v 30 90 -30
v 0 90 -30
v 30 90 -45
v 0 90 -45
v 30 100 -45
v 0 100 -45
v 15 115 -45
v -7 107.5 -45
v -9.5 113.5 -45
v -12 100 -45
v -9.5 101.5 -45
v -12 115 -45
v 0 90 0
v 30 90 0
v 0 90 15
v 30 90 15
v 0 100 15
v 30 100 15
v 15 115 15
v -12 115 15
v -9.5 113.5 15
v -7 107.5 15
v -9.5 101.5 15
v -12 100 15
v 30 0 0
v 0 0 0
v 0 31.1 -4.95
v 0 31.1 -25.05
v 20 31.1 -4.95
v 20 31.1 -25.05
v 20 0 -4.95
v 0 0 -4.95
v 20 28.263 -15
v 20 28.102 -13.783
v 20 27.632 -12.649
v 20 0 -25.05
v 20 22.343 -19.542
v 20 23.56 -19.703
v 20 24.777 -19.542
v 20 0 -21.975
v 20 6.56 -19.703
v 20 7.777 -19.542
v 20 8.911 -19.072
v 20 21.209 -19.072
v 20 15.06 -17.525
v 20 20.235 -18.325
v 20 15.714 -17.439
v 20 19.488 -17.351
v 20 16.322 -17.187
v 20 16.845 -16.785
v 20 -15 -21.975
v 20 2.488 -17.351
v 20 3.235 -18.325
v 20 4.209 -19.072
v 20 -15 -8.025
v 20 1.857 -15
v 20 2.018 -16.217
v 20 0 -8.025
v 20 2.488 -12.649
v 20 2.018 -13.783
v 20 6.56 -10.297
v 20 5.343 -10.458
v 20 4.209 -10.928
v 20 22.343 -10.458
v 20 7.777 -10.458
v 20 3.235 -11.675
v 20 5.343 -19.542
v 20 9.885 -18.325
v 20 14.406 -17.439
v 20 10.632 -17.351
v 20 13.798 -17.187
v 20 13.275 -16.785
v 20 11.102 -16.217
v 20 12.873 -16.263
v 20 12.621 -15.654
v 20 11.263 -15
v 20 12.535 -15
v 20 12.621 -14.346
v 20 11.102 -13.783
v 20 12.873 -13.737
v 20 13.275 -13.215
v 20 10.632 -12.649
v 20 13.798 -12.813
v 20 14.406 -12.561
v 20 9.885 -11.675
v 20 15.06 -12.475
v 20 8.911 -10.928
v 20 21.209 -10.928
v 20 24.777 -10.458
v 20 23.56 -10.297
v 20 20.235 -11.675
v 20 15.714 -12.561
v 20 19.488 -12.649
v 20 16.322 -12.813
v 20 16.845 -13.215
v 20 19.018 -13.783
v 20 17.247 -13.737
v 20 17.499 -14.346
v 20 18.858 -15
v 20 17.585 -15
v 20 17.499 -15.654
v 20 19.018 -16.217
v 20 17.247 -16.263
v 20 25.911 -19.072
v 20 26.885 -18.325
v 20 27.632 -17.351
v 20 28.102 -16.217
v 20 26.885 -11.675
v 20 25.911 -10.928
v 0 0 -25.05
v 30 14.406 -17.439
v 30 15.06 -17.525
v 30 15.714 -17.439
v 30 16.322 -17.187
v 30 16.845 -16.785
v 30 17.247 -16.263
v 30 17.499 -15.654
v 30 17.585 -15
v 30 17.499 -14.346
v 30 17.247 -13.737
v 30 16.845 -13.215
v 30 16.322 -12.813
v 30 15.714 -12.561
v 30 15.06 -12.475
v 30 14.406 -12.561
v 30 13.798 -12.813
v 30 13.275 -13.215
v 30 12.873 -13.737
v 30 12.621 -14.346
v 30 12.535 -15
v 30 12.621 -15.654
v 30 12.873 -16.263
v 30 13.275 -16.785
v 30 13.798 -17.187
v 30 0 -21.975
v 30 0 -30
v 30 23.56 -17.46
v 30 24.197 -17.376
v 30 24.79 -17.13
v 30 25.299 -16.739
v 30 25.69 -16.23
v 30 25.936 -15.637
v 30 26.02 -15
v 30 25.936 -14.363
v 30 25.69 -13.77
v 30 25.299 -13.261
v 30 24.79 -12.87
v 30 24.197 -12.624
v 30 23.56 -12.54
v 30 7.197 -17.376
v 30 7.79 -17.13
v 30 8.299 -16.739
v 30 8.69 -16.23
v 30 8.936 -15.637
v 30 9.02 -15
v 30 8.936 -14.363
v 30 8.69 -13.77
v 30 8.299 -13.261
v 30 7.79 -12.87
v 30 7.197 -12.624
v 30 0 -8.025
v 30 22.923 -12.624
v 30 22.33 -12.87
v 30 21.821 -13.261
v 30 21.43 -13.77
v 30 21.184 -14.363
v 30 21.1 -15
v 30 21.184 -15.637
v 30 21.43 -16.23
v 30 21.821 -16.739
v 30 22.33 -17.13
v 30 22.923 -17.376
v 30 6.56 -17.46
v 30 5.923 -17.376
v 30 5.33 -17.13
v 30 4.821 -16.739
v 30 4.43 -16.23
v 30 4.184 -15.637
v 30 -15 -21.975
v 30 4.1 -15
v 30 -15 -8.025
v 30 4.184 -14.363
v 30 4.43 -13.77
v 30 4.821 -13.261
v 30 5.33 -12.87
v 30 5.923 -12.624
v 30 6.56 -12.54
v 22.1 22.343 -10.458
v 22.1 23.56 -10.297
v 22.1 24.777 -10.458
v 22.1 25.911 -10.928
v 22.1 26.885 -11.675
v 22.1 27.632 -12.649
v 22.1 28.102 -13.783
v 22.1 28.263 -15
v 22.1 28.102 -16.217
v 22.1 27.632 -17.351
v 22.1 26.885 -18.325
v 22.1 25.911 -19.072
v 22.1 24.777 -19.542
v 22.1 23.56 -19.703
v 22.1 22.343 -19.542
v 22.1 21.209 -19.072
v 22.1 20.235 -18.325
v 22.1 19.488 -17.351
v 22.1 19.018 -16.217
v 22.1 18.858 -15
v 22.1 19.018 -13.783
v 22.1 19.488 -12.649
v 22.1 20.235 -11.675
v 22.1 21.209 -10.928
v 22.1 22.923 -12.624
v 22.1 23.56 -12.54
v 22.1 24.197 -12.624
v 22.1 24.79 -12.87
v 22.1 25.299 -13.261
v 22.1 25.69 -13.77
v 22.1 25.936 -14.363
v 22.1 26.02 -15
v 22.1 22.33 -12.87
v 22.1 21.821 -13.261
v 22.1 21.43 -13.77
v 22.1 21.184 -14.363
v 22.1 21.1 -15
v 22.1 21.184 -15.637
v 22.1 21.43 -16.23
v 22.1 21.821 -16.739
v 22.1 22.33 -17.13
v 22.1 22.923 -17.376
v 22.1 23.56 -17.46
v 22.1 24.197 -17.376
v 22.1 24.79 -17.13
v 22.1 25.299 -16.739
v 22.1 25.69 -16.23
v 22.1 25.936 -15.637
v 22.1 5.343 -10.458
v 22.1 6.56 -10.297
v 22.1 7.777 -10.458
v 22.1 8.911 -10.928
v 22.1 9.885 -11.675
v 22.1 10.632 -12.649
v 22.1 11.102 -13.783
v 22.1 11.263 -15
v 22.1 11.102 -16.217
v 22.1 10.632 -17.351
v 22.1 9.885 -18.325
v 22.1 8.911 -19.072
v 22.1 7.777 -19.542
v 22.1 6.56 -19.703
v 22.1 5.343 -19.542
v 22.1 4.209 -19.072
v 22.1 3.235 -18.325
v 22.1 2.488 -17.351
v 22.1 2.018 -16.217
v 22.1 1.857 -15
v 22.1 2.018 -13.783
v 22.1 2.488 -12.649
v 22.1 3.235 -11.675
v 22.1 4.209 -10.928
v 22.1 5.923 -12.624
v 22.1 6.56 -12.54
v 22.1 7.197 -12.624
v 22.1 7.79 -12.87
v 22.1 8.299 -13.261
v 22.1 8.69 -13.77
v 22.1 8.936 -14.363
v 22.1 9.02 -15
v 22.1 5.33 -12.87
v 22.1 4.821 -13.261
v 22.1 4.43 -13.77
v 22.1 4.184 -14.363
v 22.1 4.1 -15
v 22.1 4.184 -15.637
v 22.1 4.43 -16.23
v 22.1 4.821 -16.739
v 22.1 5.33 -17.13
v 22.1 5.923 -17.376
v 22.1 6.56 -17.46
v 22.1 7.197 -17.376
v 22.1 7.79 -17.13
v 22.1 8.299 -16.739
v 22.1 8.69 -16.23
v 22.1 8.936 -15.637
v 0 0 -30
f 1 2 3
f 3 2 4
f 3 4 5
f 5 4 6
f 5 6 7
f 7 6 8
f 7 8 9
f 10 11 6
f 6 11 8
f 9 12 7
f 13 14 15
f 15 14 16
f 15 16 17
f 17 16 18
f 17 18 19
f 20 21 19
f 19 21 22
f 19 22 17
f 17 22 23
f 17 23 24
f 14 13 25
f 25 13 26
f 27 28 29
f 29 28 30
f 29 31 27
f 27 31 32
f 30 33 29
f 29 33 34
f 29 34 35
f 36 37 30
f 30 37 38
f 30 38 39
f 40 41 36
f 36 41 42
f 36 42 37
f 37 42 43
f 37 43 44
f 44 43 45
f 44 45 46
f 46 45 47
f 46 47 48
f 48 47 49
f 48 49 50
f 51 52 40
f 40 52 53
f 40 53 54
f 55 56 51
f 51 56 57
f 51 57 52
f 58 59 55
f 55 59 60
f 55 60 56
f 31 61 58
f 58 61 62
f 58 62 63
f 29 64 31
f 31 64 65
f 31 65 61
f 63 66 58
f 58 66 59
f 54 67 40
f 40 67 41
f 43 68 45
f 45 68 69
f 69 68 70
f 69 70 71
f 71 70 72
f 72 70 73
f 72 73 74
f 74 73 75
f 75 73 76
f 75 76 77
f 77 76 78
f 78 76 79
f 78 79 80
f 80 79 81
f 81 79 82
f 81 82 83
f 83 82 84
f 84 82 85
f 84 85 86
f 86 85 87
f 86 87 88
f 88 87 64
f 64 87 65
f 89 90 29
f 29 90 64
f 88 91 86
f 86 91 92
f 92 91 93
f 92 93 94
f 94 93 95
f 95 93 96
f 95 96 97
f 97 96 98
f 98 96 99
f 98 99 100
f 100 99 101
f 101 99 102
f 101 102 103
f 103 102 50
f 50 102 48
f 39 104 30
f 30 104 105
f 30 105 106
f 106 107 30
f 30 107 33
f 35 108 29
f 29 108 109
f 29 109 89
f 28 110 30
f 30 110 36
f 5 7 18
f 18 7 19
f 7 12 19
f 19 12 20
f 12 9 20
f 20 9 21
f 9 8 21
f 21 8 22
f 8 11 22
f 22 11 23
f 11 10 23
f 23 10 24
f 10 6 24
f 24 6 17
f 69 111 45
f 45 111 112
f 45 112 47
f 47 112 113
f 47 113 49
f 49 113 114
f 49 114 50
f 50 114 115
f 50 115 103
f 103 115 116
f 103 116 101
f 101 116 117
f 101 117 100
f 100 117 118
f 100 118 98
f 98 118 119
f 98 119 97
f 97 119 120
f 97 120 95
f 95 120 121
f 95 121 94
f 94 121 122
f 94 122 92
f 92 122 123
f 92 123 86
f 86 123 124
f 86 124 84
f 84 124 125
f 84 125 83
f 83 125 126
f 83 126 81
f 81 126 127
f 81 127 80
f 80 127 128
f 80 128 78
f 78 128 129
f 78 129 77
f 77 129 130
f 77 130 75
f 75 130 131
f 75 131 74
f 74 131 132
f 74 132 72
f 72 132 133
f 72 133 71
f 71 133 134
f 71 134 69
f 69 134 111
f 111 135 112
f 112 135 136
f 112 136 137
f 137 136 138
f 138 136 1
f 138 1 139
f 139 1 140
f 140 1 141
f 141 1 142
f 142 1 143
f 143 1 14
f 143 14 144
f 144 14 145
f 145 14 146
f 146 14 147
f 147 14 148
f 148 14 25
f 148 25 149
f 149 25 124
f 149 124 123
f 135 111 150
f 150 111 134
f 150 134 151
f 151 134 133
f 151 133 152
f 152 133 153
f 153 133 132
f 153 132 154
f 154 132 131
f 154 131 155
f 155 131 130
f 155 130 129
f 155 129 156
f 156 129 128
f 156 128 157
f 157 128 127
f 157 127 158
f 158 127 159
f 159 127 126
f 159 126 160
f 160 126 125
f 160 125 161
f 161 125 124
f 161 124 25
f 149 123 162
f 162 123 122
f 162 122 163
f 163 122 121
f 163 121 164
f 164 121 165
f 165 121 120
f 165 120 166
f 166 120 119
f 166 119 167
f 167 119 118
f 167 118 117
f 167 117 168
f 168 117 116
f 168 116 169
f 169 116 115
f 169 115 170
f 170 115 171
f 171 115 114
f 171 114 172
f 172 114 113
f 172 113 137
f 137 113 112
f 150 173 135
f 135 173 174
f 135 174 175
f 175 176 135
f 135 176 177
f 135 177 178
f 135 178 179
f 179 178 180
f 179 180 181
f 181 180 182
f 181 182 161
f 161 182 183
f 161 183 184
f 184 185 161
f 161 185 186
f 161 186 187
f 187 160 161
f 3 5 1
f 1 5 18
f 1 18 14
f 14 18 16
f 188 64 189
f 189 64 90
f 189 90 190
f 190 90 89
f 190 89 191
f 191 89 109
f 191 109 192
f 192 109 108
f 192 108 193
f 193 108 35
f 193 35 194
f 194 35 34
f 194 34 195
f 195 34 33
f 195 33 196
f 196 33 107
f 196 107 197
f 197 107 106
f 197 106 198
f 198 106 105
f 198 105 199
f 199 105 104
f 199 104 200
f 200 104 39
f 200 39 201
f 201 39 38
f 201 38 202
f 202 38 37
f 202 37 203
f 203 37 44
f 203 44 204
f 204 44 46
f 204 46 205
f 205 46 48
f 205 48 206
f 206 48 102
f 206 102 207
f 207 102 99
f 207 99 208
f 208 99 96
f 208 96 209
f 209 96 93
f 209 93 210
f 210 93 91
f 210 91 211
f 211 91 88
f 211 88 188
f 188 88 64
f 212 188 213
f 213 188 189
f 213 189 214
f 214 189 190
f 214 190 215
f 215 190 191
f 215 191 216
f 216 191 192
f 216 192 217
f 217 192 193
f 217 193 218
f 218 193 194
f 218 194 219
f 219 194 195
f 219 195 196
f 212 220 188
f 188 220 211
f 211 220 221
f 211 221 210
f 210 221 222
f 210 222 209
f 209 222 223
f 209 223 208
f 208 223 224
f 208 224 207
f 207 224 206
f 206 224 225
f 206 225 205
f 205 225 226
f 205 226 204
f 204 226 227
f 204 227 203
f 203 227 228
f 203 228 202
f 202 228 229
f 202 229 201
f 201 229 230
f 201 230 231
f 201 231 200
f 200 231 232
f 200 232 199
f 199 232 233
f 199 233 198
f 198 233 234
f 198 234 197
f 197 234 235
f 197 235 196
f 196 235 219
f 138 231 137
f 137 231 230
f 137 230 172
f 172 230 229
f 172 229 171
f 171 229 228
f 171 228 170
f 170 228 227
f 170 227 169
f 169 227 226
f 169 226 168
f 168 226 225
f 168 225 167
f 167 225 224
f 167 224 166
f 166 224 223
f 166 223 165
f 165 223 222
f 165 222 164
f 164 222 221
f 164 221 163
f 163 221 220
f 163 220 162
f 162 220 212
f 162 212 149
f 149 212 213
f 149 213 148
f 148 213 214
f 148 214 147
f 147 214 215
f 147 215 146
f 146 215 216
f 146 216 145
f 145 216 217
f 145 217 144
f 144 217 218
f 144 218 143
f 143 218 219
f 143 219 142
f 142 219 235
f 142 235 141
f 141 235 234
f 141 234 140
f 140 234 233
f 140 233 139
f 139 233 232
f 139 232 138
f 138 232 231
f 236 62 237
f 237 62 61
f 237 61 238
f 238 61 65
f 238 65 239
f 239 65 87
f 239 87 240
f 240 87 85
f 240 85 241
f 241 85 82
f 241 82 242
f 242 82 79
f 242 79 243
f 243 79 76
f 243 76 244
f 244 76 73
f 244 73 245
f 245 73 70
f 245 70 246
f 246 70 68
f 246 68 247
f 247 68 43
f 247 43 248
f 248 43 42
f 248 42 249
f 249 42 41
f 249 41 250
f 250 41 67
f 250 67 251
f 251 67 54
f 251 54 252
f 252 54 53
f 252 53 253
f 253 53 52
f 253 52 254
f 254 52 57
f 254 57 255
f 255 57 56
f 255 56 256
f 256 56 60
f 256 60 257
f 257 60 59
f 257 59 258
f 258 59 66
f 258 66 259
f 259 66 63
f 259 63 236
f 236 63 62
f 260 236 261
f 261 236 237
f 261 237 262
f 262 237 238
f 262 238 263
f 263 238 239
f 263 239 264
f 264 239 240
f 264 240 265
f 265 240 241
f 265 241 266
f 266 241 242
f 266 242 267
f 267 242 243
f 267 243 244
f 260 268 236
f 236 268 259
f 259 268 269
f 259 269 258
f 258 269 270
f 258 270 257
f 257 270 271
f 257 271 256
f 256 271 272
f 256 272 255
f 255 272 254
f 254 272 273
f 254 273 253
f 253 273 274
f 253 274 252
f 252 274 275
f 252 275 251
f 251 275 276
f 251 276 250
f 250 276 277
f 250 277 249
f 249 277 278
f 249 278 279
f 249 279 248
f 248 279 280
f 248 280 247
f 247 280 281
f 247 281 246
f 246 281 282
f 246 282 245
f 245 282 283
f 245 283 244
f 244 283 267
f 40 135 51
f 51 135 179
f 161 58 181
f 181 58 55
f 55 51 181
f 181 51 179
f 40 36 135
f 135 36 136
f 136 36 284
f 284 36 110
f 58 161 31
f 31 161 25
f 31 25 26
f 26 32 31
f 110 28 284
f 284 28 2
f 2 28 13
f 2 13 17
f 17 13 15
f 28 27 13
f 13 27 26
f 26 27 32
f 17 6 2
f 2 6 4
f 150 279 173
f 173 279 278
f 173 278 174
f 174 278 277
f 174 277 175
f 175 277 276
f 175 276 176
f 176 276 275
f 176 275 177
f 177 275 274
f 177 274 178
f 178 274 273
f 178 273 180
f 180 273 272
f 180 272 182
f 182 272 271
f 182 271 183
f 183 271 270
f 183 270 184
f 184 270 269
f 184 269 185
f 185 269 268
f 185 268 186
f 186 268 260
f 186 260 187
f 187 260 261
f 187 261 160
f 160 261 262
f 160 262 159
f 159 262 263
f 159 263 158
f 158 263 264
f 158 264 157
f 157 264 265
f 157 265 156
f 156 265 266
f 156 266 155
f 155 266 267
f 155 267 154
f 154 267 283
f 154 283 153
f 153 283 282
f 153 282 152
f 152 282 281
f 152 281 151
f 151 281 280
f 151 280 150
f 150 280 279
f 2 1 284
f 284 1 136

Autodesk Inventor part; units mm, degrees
ref_plane "YZ Plane" through (0, 0, 0) normal (1, 0, 0) x (0, 1, 0)
ref_plane "XZ Plane" through (0, 0, 0) normal (0, 1, 0) x (-1, 0, 0)
sketch "Sketch1" plane through (0, 0, 0) normal (0, 0, 1) x (1, 0, 0)
  line L0 (0, 0) -> (25, 0)
  line L1 (25, 0) -> (25, 40)
  line L2 (25, 40) -> (0, 40)
  line L3 (0, 40) -> (0, 0)
  dimension "d1" = 25
  dimension "d2" = 40
  dimension "d3" = 25
extrude "Extrusion1" add sketch "Sketch1" against normal blind 30
sketch "Sketch2" plane through (25, 0, 0) normal (1, 0, 0) x (0, 0, -1)
  line L0 (0, 0) -> (30, 0) projected
  circle A0 centre (15, 6.56) radius 2.46
extrude "Extrusion2" cut sketch "Sketch2" against normal blind 30
sketch "Sketch3" plane through (0, 0, 0) normal (-1, 0, 0) x (0, 0, 1)
  line L0 (0, 0) -> (-30, 0) projected
  line L1 (-25.05, 0) -> (-4.95, 0)
  line L2 (-4.95, 0) -> (-4.95, 33.12)
  line L3 (-4.95, 33.12) -> (-25.05, 33.12)
  line L4 (-25.05, 33.12) -> (-25.05, 0)
  dimension "d11" = 20.1
extrude "Extrusion3" cut sketch "Sketch3" against normal blind 20
sketch "Sketch4" plane through (0, 0, 0) normal (0, -1, 0) x (1, 0, 0)
  line L0 (20, -4.95) -> (20, -25.05) projected
  line L1 (20, -15) -> (25, -15)
  line L2 (25, 0) -> (25, -30) projected
  line L3 (20, -8.025) -> (25, -8.025)
  line L4 (25, -8.025) -> (25, -21.975)
  line L5 (25, -21.975) -> (20, -21.975)
  line L6 (20, -21.975) -> (20, -8.025)
  line L7 (20, -8.025) -> (25, -21.975) construction
  line L8 (25, -8.025) -> (20, -21.975) construction
  line L9 (25, -12.54) -> (25, -17.46) projected
  point P0 (0, 0)
  point P1 (22.5, -15)
  dimension "d14" = 13.95
extrude "Extrusion4" add sketch "Sketch4" along normal blind 15
sketch "Sketch5" plane through (20, 0, 0) normal (-1, 0, 0) x (0, 0, 1)
  circle A0 centre (-15, 6.56) radius 2.46 projected
  circle A1 centre (-15, 6.56) radius 4.7025
  circle A2 centre (-15, 6.56) radius 2.46 projected
  circle A3 centre (-15, 6.56) radius 2.46
  point P0 (0, 0)
  dimension "d17" = 9.405
extrude "Extrusion5" cut sketch "Sketch5" against normal blind 2.1
sketch "Sketch6" plane through (25, 0, 0) normal (1, 0, 0) x (0, 0, -1)
  circle A0 centre (15, 6.56) radius 4.7025 projected
  line L0 (15, 6.56) -> (15, 23.56)
  circle A1 centre (15, 23.56) radius 2.46
  point P0 (0, 0)
  dimension "d20" = 17
  dimension "d21" = 4.92
extrude "Extrusion6" cut sketch "Sketch6" against normal blind 10 contours A1
sketch "Sketch7" plane through (20, 0, 0) normal (-1, 0, 0) x (0, 0, 1)
  circle A0 centre (-15, 23.56) radius 2.46 projected
  circle A1 centre (-15, 23.56) radius 4.7025
  point P0 (0, 0)
  dimension "d24" = 9.405
extrude "Extrusion7" cut sketch "Sketch7" against normal blind 2.1
sketch "Sketch9" plane through (25, 0, 0) normal (1, 0, 0) x (0, 0, -1)
  circle A0 centre (15, 6.56) radius 2.46 projected
  circle A1 centre (15, 6.56) radius 2.46
  circle A2 centre (15, 23.56) radius 2.46 projected
  circle A3 centre (15, 23.56) radius 2.46
  line L0 (30, 40) -> (30, 0) projected
  line L1 (30, 0) -> (30, 40)
  line L2 (30, 40) -> (0, 40)
  line L3 (0, 40) -> (0, 0)
  line L4 (0, 0) -> (8.025, 0) projected
  line L5 (21.975, 0) -> (21.975, -15)
  line L6 (21.975, -15) -> (8.025, -15)
  line L7 (8.025, -15) -> (8.025, 0)
  line L8 (0, 0) -> (8.025, 0)
  line L9 (21.975, 0) -> (30, 0)
extrude "Extrusion8" add sketch "Sketch9" along normal blind 5
sketch "Sketch10" plane through (0, 40, 0) normal (0, 1, 0) x (1, 0, 0)
  line L0 (0, 30) -> (30, 30) projected
  line L1 (30, 0) -> (0, 0) projected
  line L2 (0, 30) -> (30, 30)
  line L3 (30, 30) -> (30, 0)
  line L4 (30, 0) -> (0, 0)
  line L5 (0, 0) -> (0, 30)
extrude "Extrusion9" add sketch "Sketch10" along normal blind 30
sketch "Sketch12" plane through (30, 0, 0) normal (1, 0, 0) x (0, 0, -1)
  circle A0 centre (15, 6.56) radius 2.46 projected
  line L0 (15, 6.56) -> (15, 15.06)
  circle A1 centre (15, 15.06) radius 2.525
  point P0 (0, 0)
  dimension "d31" = 8.5
  dimension "d33" = 5.05
extrude "Extrusion10" cut sketch "Sketch12" against normal blind 30 contours A1
sketch "Sketch14" plane through (0, 0, 0) normal (0, 0, 1) x (1, 0, 0)
  line L0 (30, 70) -> (0, 70) projected
  line L1 (0, 70) -> (0, 85)
  line L2 (30, 100) -> (15, 115)
  line L3 (-12, 115) -> (15, 115)
  line L4 (30, 0) -> (30, 70) projected
  line L5 (30, 100) -> (30, 70)
  line L6 (-9.5, 113.5) -> (-12, 115)
  line L7 (-9.5, 101.5) -> (-12, 100)
  line L8 (-7, 107.5) -> (-9.5, 101.5)
  line L9 (-7, 107.5) -> (-9.5, 113.5)
  line L10 (0, 100) -> (0, 85)
  line L11 (0, 100) -> (-12, 100)
  point P0 (0, 0)
  dimension "d49" = 15
  dimension "d61" = 12
extrude "Extrusion12" add sketch "Sketch14" against normal blind 30
sketch "Sketch15" plane through (0, 0, -25.05) normal (-1, 0, 0) x (0, 0, 1)
  line L0 (0, 33.12) -> (20.1, 33.12) projected
  line L1 (20.1, 33.12) -> (20.1, 0) projected
  line L2 (0, 33.12) -> (20.1, 33.12)
  line L3 (20.1, 33.12) -> (20.1, 31.1)
  line L4 (20.1, 31.1) -> (0, 31.1)
  line L5 (0, 31.1) -> (0, 33.12)
  point P0 (25.05, 0)
  dimension "d57" = 2.02
extrude "Extrusion13" add sketch "Sketch15" against normal blind 20
sketch "Sketch19" plane through (0, 0, 0) normal (0, 0, 1) x (1, 0, 0)
  line L0 (0, 100) -> (0, 0) projected
  line L1 (0, 100) -> (-12, 100) projected
  line L2 (0, 100) -> (-12, 100)
  line L3 (-12, 100) -> (-9.5, 101.5) projected
  line L4 (-12, 100) -> (-9.5, 101.5)
  line L5 (-9.5, 101.5) -> (-7, 107.5) projected
  line L6 (-9.5, 101.5) -> (-7, 107.5)
  line L7 (-7, 107.5) -> (-9.5, 113.5) projected
  line L8 (-7, 107.5) -> (-9.5, 113.5)
  line L9 (-9.5, 113.5) -> (-12, 115) projected
  line L10 (-9.5, 113.5) -> (-12, 115)
  line L11 (-12, 115) -> (15, 115) projected
  line L12 (-12, 115) -> (15, 115)
  line L13 (15, 115) -> (30, 100) projected
  line L14 (15, 115) -> (30, 100)
  line L15 (30, 100) -> (30, 90)
  line L16 (30, 0) -> (30, 100) projected
  line L17 (30, 90) -> (0, 90)
  line L18 (0, 0) -> (0, 100) projected
  line L19 (0, 90) -> (0, 100)
  dimension "d62" = 10
  dimension "d63" = 30
extrude "Extrusion14" add sketch "Sketch19" along normal blind 15
ref_plane "Work Plane1" through (0, 0, -15) normal (0, 0, 1) x (1, 0, 0)
mirror "Mirror1" about plane through (0, 0, -15) normal (0, 0, 1) of "Extrusion14"
properties part number "rec_b_12mm_x_60mm"
